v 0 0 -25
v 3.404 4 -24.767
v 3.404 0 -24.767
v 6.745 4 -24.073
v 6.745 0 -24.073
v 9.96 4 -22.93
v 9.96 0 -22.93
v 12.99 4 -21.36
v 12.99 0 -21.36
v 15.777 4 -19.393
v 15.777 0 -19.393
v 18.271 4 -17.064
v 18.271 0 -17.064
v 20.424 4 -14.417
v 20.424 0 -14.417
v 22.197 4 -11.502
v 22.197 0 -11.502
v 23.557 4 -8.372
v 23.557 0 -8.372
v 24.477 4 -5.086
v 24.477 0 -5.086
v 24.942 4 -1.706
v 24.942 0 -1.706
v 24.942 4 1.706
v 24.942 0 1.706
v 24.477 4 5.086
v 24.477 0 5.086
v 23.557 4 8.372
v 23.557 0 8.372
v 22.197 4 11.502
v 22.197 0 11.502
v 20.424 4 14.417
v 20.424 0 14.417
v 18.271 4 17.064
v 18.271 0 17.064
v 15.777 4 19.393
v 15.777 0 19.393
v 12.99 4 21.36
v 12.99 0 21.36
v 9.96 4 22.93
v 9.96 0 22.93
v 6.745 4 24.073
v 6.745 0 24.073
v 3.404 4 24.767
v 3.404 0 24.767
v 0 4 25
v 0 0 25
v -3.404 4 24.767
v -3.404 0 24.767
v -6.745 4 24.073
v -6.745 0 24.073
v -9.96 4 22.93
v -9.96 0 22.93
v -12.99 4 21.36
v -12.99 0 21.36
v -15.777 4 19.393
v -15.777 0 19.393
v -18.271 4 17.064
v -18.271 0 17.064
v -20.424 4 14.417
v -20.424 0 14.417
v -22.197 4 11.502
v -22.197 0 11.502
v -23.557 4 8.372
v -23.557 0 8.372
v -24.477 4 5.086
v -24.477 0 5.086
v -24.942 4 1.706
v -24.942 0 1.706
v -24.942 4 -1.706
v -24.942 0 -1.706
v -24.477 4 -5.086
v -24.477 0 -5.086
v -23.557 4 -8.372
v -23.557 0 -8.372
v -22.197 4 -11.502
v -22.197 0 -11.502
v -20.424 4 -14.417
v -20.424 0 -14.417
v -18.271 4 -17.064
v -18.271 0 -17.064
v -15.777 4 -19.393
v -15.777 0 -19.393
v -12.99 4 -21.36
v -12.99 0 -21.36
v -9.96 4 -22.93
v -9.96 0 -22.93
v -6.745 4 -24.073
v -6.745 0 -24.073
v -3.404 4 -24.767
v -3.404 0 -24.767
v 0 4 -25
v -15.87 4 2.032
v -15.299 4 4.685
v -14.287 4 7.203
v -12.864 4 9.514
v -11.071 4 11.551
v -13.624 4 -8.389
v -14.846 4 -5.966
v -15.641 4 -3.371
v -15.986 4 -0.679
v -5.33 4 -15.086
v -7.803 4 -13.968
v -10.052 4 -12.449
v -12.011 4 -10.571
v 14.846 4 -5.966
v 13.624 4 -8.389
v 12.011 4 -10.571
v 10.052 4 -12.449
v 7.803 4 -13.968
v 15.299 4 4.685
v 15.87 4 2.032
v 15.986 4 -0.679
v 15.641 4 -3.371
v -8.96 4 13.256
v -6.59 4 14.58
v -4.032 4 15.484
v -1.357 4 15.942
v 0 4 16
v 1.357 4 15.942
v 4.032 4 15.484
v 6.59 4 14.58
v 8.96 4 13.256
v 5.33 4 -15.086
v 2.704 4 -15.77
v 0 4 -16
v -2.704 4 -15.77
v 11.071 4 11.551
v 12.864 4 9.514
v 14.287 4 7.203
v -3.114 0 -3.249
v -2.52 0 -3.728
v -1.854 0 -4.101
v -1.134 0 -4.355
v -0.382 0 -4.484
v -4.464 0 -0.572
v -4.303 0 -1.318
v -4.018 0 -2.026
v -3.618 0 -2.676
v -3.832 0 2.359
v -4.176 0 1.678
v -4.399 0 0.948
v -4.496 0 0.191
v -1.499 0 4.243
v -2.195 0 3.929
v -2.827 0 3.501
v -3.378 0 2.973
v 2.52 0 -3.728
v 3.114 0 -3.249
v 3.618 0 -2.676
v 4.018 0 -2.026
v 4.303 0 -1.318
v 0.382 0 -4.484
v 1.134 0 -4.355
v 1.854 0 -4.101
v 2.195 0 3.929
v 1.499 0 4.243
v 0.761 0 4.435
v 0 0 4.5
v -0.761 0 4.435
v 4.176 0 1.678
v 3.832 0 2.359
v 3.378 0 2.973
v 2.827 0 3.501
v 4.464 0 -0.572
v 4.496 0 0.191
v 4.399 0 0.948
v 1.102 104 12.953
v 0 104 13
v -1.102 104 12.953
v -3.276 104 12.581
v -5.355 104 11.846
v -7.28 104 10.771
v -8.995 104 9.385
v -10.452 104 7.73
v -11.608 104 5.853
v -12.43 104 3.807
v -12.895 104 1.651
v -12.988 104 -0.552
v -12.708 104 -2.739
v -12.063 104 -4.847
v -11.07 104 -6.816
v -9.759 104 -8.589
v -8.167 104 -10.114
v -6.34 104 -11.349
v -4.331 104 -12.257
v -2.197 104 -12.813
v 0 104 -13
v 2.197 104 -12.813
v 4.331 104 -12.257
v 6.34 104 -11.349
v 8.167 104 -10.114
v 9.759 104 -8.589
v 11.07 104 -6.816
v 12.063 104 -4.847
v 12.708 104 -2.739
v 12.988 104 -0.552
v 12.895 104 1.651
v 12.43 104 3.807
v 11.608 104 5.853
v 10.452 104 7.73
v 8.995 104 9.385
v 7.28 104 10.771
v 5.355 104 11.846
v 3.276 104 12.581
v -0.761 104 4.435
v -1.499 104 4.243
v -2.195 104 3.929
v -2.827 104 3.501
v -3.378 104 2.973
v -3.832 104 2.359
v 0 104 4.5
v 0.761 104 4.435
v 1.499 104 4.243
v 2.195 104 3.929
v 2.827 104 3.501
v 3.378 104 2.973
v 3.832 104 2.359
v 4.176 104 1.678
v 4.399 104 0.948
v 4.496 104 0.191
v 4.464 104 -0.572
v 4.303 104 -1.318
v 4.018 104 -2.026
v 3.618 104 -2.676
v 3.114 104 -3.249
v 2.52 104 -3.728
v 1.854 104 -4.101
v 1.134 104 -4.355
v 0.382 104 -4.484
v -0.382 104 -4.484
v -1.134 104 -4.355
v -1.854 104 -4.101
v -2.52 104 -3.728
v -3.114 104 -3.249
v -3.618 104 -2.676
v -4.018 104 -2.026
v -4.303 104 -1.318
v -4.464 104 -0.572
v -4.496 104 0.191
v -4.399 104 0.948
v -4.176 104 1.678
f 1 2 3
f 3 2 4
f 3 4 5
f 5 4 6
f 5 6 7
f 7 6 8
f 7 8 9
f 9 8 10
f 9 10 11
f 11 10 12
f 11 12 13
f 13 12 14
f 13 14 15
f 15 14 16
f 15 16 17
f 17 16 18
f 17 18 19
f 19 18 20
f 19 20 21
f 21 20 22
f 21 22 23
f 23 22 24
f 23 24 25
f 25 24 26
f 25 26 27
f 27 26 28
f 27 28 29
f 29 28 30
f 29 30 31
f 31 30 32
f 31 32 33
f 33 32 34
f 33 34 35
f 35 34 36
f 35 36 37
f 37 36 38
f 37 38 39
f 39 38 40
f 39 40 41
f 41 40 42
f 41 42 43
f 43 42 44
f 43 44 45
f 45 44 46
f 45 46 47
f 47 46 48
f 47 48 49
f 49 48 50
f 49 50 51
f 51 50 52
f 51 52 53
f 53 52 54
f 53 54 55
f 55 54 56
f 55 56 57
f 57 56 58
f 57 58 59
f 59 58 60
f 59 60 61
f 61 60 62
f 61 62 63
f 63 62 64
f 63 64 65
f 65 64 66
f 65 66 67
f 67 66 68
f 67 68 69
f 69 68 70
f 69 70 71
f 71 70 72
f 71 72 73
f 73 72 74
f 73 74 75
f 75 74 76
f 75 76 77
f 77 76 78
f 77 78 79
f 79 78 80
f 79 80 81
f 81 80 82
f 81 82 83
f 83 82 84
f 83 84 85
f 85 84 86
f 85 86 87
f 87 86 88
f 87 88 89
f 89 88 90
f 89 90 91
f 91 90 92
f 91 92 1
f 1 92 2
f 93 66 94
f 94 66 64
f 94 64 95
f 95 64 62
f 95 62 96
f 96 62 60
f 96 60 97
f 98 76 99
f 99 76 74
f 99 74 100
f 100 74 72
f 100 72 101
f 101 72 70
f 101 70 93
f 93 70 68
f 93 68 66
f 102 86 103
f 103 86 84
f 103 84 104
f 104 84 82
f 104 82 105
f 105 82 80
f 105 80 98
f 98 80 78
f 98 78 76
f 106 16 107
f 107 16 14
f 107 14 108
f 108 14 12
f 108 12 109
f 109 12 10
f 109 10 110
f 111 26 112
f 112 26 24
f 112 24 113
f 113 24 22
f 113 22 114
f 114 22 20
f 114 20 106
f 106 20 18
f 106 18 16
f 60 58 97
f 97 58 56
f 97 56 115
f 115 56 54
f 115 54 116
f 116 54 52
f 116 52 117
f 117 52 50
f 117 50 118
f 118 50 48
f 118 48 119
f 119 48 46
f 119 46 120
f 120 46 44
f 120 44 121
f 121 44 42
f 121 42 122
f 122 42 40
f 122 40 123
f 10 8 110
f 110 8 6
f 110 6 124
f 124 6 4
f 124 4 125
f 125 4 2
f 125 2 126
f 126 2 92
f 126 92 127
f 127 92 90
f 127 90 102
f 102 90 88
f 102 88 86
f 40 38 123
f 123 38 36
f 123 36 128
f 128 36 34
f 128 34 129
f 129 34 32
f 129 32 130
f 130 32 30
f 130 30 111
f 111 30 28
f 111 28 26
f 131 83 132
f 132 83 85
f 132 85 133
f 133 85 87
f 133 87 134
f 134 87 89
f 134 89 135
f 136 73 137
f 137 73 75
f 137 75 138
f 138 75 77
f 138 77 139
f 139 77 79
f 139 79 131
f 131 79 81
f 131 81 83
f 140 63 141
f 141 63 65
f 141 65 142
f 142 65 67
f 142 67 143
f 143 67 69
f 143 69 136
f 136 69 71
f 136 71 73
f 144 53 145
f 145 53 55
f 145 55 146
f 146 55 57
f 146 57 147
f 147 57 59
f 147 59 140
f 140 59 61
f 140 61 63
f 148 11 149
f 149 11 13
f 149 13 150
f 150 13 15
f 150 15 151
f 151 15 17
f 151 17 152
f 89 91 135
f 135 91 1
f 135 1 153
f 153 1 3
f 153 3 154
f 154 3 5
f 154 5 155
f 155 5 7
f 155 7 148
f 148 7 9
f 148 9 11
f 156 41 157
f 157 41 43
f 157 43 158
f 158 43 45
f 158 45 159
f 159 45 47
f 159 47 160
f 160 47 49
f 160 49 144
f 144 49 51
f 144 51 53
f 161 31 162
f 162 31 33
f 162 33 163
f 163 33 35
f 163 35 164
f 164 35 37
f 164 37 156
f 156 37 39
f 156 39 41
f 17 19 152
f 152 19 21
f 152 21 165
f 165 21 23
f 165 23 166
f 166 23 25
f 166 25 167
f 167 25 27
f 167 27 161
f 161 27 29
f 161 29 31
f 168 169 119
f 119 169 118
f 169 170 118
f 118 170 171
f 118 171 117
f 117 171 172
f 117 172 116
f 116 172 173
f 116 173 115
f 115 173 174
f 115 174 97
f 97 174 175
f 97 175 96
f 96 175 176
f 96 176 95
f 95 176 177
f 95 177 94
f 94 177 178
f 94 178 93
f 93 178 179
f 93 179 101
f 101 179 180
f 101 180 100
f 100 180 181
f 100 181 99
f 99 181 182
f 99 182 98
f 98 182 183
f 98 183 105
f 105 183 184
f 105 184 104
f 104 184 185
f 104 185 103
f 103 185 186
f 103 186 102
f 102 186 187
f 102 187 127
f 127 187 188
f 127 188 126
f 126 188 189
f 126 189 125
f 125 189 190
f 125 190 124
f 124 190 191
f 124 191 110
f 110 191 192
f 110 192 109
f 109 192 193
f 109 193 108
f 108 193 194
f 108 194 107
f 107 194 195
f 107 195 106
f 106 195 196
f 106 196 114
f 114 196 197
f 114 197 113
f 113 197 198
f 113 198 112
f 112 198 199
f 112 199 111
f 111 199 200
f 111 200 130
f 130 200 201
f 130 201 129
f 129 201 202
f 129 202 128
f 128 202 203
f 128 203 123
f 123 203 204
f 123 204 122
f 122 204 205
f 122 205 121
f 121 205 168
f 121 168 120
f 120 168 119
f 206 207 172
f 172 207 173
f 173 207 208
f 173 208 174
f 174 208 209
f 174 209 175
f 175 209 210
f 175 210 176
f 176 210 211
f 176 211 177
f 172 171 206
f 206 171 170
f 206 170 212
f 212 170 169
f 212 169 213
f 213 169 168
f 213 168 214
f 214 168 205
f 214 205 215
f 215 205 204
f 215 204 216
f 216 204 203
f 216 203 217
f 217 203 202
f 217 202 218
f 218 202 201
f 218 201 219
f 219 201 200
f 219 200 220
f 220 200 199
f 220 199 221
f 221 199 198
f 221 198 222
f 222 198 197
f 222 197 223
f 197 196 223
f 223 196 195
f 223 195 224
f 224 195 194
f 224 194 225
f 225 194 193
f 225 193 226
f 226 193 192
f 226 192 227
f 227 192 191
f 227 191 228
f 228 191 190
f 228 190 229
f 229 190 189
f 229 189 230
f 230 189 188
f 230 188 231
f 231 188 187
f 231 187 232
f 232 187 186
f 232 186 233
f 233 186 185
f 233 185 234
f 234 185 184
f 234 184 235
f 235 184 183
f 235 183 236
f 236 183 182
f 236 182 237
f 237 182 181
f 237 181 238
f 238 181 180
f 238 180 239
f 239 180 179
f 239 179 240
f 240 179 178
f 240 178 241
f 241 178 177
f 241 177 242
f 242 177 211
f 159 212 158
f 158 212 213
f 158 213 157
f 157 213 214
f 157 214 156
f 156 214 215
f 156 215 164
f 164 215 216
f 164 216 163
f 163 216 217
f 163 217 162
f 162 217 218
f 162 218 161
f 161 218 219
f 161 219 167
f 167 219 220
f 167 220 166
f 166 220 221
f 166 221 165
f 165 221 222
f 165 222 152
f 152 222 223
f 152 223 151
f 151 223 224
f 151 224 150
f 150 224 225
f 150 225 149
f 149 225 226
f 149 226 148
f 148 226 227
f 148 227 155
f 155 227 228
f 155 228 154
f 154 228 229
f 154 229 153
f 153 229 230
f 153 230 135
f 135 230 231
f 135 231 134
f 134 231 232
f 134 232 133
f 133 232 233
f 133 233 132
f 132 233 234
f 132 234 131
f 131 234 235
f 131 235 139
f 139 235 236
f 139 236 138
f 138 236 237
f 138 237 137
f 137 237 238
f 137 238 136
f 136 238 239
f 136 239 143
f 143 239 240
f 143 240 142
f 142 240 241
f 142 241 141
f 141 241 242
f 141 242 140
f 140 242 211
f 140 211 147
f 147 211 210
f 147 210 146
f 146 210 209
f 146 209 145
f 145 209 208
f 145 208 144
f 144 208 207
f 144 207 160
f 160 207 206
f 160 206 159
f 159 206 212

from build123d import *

# Parameters (mm, degrees)
ESQUISSE1_R                  = 25
BOSS_EXTRU_1_DEPTH           = 4
ENL_V_MAT_EXTRU_1_DEPTH      = 107.066017178
ENL_V_MAT_EXTRU_1_DEPTH_BACK = 107.066017178
ESQUISSE2_R                  = 4.5


with BuildPart() as part:
    # Esquisse1 → Boss.-Extru.1 (new body)
    with BuildSketch(Plane(origin=(0, 0, 0), x_dir=(1, 0, 0), z_dir=(0, 1, 0))):
        Circle(ESQUISSE1_R)
    extrude(amount=BOSS_EXTRU_1_DEPTH)

    # Esquisse3 → Révolution1 (revolve)
    with BuildSketch(Plane(origin=(0, 0, 0), x_dir=(0, 0, -1), z_dir=(1, 0, 0))):
        Polygon((0, 4), (-16, 4), (-13, 104), (0, 104), align=None)
    revolve(axis=Axis((0, 104, 0), (0, -1, 0)))

    # Esquisse2 → Enlèv. mat.-Extru.1 (cut, two sides: drawn at the far end of the back side and taken through both)
    with BuildSketch(Plane(origin=(0, 4, 0), x_dir=(1, 0, 0), z_dir=(0, 1, 0)).offset(-ENL_V_MAT_EXTRU_1_DEPTH_BACK)):
        Circle(ESQUISSE2_R)
    extrude(amount=ENL_V_MAT_EXTRU_1_DEPTH + ENL_V_MAT_EXTRU_1_DEPTH_BACK, mode=Mode.SUBTRACT)


solid = part.part
